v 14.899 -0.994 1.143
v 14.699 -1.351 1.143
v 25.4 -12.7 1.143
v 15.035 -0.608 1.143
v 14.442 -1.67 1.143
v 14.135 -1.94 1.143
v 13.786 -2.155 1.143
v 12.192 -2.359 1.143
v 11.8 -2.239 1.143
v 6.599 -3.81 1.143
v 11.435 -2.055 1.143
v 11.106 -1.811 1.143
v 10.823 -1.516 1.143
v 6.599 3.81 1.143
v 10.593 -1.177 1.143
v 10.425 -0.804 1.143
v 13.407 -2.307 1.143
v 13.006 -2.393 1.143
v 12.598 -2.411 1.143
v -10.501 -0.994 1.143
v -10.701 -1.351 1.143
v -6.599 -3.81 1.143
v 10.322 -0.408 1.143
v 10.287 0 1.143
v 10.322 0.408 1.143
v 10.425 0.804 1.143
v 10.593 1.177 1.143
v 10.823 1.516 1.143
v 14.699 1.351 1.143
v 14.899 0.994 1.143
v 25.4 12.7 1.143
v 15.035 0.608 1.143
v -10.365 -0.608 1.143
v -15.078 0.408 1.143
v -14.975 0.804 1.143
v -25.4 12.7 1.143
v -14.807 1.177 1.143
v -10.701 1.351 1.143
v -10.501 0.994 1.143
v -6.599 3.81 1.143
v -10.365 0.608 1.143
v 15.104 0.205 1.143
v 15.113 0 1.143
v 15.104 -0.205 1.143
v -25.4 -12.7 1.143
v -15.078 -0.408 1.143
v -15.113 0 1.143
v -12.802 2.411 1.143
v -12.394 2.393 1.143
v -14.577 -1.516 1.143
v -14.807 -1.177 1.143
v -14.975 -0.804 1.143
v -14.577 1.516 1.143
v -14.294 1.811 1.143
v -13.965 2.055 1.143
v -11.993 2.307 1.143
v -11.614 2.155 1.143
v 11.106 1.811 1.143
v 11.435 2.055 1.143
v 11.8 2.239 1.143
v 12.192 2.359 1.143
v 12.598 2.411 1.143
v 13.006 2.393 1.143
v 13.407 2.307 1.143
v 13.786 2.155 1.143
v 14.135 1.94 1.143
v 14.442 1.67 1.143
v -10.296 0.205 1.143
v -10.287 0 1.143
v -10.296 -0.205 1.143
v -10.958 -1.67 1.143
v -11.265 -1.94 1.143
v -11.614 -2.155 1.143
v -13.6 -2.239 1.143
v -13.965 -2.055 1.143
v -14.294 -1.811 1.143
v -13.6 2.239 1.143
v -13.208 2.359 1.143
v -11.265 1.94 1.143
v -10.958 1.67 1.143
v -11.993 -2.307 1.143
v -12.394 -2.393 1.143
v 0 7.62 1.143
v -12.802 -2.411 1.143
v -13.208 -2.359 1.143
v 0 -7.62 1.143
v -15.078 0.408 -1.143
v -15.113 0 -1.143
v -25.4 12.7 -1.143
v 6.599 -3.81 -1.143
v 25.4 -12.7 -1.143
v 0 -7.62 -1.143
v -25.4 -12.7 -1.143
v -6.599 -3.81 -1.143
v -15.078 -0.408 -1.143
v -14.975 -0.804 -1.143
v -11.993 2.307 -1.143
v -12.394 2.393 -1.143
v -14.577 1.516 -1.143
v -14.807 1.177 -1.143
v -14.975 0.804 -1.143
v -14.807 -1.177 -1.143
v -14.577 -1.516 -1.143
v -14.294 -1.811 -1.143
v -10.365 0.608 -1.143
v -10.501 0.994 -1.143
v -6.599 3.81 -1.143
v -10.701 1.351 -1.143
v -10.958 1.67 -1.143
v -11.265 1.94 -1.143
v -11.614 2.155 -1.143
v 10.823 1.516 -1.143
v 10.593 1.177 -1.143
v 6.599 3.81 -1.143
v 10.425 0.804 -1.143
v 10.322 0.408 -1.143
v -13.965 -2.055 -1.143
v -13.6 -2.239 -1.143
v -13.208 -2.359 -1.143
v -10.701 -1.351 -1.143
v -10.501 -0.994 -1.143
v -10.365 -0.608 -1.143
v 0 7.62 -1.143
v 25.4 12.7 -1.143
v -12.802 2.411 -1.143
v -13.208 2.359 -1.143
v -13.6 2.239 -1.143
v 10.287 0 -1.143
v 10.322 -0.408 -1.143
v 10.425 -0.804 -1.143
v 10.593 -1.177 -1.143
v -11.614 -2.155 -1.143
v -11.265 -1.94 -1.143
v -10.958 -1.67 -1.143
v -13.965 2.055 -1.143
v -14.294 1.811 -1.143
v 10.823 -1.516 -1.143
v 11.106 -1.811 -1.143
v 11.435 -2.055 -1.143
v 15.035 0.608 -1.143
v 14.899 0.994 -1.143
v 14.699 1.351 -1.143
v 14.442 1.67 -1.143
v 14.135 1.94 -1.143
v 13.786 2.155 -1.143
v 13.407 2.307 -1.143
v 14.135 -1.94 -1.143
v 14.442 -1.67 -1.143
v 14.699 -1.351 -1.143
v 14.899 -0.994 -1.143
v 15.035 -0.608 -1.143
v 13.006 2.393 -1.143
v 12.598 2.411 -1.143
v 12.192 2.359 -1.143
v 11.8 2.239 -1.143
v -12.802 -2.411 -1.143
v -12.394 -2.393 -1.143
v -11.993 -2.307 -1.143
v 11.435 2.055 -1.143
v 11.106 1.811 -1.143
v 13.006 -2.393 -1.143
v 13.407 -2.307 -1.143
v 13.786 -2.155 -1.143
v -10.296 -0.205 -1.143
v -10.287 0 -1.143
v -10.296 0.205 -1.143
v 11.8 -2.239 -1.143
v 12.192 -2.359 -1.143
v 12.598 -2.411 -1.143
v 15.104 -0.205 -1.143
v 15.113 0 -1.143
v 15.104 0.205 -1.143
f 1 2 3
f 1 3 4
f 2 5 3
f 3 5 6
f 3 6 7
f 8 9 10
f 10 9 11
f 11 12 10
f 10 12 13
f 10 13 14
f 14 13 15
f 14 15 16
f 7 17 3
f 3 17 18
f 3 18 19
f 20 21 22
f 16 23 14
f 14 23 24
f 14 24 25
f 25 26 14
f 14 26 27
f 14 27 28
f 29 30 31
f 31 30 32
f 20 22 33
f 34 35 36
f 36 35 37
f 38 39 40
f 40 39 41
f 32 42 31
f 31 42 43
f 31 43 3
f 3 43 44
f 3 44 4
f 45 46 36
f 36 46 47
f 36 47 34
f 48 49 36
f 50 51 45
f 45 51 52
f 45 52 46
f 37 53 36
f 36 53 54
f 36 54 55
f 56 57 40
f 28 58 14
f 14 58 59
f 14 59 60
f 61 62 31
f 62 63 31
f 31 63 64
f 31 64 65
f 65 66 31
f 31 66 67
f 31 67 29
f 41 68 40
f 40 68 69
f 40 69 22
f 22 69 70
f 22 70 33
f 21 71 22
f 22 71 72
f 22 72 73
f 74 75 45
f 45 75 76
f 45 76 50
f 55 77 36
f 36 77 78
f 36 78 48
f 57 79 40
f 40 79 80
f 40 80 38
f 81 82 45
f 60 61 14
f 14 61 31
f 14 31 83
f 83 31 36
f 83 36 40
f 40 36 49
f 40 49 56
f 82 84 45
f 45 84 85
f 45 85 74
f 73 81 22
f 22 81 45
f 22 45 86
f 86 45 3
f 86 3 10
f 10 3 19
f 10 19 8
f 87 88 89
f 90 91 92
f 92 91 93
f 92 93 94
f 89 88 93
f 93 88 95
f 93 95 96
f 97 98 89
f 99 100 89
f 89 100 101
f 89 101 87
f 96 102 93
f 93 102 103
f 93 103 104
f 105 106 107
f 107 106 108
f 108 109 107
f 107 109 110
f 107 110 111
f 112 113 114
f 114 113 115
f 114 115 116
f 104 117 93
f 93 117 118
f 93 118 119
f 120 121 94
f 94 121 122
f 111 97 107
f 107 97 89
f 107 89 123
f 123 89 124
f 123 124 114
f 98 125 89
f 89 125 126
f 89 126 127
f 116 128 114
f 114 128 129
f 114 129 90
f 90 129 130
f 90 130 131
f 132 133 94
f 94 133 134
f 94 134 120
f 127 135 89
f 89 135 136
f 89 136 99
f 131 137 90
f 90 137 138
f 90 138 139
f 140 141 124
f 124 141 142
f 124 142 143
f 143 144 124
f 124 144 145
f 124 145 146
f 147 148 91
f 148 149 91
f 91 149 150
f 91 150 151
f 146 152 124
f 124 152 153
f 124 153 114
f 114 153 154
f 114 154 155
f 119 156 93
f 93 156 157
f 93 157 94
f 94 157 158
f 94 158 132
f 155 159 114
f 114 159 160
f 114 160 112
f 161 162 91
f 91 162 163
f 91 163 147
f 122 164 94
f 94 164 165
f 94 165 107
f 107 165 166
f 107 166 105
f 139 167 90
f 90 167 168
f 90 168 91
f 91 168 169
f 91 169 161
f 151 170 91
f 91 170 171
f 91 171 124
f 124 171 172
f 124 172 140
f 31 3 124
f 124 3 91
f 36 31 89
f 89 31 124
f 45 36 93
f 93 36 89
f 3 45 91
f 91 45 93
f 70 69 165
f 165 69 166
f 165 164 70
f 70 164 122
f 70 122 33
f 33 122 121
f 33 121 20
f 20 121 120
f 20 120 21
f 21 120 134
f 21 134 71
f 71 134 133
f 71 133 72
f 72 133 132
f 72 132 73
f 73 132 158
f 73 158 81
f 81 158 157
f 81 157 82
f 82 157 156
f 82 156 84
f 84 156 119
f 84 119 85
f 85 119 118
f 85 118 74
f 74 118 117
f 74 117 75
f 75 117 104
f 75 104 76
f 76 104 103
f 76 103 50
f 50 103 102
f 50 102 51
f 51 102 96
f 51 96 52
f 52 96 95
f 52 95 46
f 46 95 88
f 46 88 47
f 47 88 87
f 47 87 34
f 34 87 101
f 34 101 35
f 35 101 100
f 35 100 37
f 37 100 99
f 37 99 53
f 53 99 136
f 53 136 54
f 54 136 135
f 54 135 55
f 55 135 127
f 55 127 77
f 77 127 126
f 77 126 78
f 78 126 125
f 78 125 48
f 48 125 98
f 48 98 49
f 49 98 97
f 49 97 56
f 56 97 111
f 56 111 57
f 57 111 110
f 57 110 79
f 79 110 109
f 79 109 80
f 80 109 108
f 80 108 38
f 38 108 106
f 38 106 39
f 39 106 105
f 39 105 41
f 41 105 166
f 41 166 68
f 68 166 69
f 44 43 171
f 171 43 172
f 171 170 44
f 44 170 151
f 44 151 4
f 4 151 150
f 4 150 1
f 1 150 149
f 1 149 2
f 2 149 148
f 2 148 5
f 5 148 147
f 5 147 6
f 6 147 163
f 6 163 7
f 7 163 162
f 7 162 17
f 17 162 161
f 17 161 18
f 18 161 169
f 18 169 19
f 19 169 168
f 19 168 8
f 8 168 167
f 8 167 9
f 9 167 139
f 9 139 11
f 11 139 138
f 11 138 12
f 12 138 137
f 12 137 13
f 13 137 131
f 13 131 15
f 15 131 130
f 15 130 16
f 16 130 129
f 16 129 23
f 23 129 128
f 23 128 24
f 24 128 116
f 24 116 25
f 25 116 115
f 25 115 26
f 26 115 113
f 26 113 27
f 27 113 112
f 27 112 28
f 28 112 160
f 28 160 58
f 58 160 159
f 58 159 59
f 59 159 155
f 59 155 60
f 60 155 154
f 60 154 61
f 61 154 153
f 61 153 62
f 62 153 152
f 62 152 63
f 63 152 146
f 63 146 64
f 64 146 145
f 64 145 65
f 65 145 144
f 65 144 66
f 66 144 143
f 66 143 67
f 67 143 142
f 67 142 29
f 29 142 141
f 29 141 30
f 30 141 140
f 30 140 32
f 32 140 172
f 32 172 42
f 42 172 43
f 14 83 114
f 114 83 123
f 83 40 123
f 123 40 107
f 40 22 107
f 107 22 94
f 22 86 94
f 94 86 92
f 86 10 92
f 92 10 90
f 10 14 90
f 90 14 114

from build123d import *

# Parameters (mm, degrees)
SKETCH1_W           = 50.8
SKETCH1_H           = 25.4
SKETCH1_R           = 2.413
BOSS_EXTRUDE1_DEPTH = 1.143


with BuildPart() as part:
    # Sketch1 → Boss-Extrude1 (new, symmetric)
    with BuildSketch(Plane.XY):
        Rectangle(SKETCH1_W, SKETCH1_H)
        with Locations((-12.7, 0)):
            Circle(SKETCH1_R, mode=Mode.SUBTRACT)
        with Locations((12.7, 0)):
            Circle(SKETCH1_R, mode=Mode.SUBTRACT)
        Polygon((0, 7.62), (-6.599113577, 3.81), (-6.599113577, -3.81), (0, -7.62), (6.599113577, -3.81), (6.599113577, 3.81), align=None, mode=Mode.SUBTRACT)
    extrude(amount=BOSS_EXTRUDE1_DEPTH, both=True)


solid = part.part
